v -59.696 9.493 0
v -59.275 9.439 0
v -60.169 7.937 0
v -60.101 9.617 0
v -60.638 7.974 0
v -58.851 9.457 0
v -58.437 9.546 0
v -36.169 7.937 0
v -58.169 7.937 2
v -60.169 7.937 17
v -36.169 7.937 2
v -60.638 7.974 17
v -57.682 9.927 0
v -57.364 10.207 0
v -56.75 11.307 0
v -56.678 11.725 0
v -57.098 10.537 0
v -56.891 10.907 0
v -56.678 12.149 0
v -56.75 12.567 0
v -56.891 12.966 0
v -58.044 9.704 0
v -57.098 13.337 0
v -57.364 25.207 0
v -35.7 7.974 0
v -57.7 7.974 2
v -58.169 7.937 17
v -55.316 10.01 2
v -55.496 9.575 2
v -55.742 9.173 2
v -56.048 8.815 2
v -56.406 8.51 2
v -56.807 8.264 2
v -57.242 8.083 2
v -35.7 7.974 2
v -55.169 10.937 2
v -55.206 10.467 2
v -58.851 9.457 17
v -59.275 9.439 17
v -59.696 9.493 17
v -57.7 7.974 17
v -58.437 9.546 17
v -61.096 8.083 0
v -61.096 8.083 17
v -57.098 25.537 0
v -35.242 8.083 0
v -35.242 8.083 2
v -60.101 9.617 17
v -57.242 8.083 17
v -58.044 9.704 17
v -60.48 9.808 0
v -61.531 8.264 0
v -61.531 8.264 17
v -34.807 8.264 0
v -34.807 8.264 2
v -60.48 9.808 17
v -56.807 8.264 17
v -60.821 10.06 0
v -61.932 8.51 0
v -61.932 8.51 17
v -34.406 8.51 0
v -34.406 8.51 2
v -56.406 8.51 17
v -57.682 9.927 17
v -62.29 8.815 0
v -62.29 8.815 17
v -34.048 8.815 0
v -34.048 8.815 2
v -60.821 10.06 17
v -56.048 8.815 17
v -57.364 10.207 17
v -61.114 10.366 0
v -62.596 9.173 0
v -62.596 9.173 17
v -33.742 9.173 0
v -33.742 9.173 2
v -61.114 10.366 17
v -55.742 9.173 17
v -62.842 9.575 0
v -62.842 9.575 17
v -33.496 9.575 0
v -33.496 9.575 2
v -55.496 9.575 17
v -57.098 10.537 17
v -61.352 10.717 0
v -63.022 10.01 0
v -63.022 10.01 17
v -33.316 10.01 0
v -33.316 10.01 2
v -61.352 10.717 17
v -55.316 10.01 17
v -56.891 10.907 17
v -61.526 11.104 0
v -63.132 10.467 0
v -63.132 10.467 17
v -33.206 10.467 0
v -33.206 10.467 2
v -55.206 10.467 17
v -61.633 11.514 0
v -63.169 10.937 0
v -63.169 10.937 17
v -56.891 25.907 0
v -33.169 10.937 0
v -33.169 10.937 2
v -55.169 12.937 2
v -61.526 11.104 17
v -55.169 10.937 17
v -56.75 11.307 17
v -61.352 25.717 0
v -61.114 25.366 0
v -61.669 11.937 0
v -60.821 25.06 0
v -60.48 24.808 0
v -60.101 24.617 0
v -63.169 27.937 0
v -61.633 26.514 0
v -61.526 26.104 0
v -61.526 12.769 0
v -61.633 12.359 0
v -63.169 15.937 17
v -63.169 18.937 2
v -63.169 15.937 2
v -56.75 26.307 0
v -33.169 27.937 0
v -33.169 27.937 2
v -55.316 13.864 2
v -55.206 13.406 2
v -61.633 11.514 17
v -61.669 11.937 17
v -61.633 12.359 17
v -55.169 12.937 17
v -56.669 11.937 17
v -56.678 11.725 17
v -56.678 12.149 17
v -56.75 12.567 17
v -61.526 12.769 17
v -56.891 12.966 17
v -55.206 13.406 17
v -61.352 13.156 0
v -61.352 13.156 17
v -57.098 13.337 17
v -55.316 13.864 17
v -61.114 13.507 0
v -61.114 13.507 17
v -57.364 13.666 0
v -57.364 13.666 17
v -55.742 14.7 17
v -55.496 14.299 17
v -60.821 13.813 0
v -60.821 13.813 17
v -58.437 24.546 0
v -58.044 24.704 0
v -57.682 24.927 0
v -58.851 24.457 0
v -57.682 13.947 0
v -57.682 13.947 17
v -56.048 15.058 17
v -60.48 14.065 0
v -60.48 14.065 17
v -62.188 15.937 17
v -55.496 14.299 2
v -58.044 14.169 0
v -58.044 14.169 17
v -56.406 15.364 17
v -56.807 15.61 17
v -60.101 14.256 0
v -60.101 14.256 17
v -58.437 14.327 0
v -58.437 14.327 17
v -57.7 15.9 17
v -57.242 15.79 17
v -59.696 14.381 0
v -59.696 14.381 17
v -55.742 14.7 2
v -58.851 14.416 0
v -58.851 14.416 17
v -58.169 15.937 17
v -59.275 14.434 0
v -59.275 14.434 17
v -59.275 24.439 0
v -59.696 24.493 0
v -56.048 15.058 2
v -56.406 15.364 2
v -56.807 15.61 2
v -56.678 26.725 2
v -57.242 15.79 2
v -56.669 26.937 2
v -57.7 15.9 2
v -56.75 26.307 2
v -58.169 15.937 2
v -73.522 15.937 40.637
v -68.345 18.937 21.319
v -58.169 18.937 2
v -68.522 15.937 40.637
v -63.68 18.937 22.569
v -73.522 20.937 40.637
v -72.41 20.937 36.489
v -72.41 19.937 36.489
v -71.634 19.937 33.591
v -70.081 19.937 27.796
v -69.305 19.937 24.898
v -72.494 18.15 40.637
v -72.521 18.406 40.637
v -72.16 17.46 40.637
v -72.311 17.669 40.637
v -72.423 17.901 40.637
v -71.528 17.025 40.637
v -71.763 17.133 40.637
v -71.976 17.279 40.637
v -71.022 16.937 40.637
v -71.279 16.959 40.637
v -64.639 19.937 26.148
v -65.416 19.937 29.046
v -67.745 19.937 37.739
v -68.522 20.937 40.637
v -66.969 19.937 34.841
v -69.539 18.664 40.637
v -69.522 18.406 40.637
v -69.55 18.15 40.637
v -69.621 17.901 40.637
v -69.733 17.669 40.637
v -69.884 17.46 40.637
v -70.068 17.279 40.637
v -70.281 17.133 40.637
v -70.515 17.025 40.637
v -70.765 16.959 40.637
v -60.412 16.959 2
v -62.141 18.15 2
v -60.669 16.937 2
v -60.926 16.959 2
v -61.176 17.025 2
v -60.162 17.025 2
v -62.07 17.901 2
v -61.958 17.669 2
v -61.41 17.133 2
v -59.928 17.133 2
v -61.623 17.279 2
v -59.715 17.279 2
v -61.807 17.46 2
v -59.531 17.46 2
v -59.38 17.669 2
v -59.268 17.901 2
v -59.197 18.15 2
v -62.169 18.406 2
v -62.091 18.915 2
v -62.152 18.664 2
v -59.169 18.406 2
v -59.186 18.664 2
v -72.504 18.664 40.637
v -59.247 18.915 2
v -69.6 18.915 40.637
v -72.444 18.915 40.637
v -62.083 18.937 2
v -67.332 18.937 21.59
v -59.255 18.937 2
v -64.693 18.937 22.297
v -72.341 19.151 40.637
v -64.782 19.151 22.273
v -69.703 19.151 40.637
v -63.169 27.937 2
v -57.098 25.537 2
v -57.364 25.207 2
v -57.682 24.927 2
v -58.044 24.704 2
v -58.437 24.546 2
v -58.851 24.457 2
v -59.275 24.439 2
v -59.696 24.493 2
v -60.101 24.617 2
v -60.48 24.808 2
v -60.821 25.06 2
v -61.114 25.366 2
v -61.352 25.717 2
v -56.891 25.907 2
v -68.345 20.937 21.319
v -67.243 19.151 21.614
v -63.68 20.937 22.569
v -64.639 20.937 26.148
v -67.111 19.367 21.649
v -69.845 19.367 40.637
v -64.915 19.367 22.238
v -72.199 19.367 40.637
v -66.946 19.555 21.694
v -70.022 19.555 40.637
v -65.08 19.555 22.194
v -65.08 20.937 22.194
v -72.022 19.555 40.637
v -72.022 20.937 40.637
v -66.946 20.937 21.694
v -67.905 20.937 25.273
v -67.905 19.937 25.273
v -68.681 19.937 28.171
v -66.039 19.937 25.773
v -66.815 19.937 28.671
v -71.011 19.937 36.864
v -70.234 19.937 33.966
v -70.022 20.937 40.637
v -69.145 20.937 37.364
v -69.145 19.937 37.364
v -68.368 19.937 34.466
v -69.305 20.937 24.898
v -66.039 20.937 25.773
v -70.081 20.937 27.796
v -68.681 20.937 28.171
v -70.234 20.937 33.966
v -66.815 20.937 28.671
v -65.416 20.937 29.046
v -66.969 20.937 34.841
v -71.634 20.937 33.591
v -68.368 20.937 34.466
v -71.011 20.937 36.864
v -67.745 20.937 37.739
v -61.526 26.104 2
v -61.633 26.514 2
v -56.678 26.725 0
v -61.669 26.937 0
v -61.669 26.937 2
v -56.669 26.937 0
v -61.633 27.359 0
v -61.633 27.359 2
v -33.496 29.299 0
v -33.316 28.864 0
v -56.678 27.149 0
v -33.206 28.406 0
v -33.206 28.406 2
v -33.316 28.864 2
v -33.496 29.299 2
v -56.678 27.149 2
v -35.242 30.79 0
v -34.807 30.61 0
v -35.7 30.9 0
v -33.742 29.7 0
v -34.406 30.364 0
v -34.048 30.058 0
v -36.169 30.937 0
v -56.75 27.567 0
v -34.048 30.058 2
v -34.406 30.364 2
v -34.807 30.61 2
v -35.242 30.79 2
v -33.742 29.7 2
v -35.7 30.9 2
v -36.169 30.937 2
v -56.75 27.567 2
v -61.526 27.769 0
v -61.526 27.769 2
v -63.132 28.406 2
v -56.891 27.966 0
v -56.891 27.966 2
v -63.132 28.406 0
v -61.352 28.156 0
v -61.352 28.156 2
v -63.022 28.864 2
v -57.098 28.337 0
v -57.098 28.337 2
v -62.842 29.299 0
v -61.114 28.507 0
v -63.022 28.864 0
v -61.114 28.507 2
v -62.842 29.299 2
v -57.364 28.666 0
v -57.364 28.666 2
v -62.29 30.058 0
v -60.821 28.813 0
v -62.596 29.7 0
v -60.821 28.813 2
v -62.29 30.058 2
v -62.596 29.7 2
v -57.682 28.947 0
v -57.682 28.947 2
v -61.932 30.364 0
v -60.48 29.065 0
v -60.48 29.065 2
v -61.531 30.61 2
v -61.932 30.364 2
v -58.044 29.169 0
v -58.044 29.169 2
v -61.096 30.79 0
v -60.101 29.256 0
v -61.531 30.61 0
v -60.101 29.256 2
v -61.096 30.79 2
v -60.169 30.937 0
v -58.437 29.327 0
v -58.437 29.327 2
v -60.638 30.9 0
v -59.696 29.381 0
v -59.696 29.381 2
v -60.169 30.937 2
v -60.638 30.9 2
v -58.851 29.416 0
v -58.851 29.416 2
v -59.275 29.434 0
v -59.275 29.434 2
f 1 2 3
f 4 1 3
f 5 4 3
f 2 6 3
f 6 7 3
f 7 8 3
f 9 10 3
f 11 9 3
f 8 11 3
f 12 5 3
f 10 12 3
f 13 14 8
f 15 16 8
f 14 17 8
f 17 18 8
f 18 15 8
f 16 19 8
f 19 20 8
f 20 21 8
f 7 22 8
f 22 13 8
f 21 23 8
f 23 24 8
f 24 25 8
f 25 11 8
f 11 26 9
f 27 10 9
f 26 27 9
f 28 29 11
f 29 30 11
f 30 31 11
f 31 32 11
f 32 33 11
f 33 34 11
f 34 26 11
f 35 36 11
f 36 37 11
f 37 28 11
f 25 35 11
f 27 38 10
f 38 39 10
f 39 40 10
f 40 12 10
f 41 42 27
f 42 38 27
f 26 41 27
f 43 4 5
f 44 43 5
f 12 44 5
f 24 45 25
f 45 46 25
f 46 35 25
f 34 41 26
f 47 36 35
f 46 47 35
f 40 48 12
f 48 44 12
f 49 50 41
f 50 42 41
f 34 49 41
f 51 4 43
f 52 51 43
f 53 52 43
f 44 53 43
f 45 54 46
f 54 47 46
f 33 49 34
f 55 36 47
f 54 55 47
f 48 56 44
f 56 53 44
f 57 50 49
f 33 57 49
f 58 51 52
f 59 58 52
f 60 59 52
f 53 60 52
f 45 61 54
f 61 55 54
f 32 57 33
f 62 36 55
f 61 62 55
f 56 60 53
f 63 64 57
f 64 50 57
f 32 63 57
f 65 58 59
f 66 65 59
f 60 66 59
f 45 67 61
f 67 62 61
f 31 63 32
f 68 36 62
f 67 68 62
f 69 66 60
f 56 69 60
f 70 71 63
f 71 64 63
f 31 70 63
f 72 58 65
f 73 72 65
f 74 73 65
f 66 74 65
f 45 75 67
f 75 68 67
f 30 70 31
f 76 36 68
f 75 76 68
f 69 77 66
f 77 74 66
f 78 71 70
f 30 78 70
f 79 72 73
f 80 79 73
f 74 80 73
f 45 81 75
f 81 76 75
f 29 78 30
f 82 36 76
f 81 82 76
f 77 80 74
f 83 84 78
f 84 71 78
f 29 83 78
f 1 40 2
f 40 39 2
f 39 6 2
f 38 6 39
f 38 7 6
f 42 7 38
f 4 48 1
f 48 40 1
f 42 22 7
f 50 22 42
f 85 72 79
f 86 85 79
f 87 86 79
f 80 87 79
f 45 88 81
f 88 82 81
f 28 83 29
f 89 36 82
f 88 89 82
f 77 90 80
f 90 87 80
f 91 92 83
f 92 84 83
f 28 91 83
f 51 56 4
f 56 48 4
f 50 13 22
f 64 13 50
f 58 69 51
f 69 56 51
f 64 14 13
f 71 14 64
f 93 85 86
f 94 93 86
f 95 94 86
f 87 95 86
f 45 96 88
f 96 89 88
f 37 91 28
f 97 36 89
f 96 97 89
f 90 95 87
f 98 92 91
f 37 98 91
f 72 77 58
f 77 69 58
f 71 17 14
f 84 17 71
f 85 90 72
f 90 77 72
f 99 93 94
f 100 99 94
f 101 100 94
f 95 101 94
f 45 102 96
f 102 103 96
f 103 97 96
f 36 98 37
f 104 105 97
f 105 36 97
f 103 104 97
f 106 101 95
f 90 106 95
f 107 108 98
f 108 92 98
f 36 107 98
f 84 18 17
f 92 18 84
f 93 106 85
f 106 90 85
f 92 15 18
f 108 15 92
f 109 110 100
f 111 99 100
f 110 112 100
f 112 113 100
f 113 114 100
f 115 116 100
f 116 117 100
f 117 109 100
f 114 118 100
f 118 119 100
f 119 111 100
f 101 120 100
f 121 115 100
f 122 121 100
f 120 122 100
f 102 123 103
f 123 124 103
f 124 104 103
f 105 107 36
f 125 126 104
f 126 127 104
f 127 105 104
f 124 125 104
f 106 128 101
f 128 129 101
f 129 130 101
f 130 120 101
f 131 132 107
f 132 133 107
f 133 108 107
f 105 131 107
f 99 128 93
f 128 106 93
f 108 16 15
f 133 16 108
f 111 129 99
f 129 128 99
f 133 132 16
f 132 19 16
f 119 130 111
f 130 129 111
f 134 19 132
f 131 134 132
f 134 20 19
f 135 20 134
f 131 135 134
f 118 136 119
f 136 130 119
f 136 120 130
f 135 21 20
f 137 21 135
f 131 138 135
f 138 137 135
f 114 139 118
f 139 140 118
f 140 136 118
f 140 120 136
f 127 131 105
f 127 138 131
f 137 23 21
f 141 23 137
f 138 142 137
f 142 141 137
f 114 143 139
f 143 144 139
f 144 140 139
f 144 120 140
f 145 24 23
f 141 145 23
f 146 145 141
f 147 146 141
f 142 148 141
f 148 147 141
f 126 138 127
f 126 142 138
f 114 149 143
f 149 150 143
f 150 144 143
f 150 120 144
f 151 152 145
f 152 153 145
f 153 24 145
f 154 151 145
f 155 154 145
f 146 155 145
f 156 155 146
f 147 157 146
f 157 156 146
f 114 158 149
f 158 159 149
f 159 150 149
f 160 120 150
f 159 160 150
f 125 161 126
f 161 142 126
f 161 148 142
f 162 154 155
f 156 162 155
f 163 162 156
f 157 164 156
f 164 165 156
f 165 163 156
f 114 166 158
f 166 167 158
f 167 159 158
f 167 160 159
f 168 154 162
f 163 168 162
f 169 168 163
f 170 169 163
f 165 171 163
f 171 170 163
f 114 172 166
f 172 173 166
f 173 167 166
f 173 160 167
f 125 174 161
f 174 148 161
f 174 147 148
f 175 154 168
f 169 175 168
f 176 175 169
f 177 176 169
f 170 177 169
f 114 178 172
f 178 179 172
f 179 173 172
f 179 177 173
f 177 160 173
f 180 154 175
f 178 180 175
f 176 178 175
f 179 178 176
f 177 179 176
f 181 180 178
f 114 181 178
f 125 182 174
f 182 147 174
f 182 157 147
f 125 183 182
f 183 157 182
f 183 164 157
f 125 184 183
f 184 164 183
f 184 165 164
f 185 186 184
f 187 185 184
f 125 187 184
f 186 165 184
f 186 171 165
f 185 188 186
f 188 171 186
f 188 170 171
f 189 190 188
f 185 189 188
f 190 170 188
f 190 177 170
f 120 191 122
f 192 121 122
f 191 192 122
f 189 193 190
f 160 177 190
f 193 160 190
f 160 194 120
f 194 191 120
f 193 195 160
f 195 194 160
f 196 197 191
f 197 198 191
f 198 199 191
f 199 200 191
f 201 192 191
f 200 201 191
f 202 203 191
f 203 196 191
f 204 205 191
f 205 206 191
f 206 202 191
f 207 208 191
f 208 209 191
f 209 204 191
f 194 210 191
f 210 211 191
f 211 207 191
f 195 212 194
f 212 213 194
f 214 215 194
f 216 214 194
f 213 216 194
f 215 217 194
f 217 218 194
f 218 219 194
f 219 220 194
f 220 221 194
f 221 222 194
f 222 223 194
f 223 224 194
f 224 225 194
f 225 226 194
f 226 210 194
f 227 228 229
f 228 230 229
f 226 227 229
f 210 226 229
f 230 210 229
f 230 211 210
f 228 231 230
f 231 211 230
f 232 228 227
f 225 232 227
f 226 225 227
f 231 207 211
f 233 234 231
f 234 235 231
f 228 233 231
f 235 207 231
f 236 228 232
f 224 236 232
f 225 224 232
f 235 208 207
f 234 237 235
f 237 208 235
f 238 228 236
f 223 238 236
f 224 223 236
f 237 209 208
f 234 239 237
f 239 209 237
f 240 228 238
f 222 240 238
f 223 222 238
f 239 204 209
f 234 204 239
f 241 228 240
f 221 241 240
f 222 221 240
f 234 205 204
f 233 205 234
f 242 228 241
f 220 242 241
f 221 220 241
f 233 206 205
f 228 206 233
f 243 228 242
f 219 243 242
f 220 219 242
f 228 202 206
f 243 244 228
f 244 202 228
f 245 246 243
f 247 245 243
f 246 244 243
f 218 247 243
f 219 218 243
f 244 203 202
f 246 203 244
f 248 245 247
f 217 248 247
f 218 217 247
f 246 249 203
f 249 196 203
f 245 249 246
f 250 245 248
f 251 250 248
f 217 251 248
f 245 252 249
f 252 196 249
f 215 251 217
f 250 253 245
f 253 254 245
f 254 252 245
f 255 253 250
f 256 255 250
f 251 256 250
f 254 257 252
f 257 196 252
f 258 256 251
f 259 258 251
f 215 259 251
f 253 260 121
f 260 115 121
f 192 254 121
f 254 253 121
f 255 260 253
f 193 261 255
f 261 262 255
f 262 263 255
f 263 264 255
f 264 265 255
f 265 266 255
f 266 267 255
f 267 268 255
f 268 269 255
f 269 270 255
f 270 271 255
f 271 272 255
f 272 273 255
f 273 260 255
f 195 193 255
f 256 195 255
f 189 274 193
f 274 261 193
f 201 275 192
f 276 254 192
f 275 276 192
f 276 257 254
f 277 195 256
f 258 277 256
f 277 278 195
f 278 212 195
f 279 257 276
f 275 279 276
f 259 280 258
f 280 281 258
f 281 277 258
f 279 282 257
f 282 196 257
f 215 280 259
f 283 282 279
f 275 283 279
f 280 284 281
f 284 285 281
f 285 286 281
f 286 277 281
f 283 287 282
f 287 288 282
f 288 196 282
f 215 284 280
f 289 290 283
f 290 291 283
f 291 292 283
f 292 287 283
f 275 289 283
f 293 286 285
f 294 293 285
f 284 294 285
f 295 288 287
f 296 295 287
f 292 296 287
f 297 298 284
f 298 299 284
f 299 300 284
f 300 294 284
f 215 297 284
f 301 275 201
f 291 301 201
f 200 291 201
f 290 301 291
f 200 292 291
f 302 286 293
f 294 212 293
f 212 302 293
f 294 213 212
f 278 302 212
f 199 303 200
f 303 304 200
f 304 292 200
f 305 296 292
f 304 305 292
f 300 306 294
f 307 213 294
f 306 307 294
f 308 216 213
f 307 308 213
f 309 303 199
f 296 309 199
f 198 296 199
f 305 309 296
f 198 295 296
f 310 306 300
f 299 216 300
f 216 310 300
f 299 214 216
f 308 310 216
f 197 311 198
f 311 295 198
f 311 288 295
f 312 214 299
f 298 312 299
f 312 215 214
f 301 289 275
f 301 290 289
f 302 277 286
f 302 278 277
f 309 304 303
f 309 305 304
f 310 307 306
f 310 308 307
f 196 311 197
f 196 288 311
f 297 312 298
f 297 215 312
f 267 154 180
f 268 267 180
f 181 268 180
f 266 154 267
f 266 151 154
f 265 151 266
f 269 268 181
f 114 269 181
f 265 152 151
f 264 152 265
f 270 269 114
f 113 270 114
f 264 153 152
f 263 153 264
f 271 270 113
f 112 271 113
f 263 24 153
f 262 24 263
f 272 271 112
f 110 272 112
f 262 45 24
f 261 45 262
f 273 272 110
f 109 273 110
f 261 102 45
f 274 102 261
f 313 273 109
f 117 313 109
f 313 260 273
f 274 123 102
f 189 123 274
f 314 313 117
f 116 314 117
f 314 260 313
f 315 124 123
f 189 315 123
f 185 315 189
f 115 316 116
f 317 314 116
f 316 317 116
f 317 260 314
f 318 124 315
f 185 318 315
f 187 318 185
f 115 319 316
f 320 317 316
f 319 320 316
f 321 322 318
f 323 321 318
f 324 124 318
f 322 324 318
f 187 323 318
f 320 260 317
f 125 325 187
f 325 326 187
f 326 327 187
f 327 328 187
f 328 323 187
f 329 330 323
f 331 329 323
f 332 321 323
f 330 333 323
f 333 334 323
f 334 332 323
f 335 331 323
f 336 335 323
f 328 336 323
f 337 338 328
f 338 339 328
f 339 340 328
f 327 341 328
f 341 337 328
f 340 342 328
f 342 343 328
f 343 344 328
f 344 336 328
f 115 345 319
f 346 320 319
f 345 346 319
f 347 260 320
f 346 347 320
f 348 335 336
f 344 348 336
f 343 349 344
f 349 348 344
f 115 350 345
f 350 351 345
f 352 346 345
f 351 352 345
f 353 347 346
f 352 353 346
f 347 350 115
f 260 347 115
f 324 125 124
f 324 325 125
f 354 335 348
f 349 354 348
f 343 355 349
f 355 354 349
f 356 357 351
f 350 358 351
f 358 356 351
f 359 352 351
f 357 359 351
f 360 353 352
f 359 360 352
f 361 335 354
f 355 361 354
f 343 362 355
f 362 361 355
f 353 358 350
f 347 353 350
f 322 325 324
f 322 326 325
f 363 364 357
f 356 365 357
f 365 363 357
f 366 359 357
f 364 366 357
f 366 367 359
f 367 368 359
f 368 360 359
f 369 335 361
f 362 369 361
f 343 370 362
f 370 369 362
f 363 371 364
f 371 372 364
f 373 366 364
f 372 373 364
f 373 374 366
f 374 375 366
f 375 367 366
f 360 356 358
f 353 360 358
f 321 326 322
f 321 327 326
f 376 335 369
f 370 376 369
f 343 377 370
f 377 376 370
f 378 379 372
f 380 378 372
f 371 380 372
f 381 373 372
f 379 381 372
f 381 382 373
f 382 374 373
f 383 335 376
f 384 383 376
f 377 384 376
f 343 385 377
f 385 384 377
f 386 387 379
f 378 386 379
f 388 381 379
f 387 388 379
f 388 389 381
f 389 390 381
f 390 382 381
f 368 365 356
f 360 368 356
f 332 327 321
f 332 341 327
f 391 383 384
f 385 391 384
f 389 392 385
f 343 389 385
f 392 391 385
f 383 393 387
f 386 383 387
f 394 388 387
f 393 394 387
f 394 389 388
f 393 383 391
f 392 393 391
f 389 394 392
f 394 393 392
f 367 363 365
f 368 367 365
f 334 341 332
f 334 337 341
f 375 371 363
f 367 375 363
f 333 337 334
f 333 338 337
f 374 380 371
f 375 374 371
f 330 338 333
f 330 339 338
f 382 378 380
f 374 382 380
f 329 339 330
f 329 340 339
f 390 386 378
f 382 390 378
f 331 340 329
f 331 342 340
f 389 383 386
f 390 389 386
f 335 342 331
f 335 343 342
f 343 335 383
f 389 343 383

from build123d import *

# Parameters (mm, degrees)
CROQUIS3_W              = 30
CROQUIS3_H              = 23
CROQUIS3_R              = 2.5
SALIENTE_EXTRUIR2_DEPTH = 2
CROQUIS5_W              = 8
CROQUIS5_H              = 8
CROQUIS5_R              = 2.5
SALIENTE_EXTRUIR3_DEPTH = 15
SALIENTE_EXTRUIR4_DEPTH = 40
REDONDEO1_R             = 3
CORTAR_EXTRUIR2_DEPTH   = 2
CORTAR_EXTRUIR3_DEPTH   = 1


with BuildPart() as part:
    # Croquis3 → Saliente-Extruir2 (new body)
    with BuildSketch(Plane.XY):
        with Locations((-48.169014085, 19.436619718)):
            Rectangle(CROQUIS3_W, CROQUIS3_H)
        with Locations((-59.169014085, 26.936619718)):
            Circle(CROQUIS3_R, mode=Mode.SUBTRACT)
        with Locations(Location((-59.169014085, 11.936619718, 0), (0, 0, 180))):
            Circle(CROQUIS3_R, mode=Mode.SUBTRACT)
    extrude(amount=SALIENTE_EXTRUIR2_DEPTH)

    # Croquis5 → Saliente-Extruir3 (add)
    with BuildSketch(Plane.XY.offset(2)):
        with Locations((-59.169014085, 11.936619718)):
            Rectangle(CROQUIS5_W, CROQUIS5_H)
        with Locations(Location((-59.169014085, 11.936619718, 0), (0, 0, 180))):
            Circle(CROQUIS5_R, mode=Mode.SUBTRACT)
    extrude(amount=SALIENTE_EXTRUIR3_DEPTH)

    # Croquis6 → Saliente-Extruir4 (add, along a direction that is not the sketch's normal)
    with BuildSketch(Plane.XY.offset(2)):
        with BuildLine():
            Line((-63.169014085, 15.936619718), (-58.169014085, 15.936619718))
            Line((-58.169014085, 15.936619718), (-58.169014085, 20.936619718))
            Line((-58.169014085, 20.936619718), (-59.669014085, 20.936619718))
            Line((-59.669014085, 20.936619718), (-59.669014085, 19.554653707))
            ThreePointArc((-59.669014085, 19.554653707), (-60.669014085, 16.936619718), (-61.669014085, 19.554653707))
            Line((-61.669014085, 19.554653707), (-61.669014085, 20.936619718))
            Line((-61.669014085, 20.936619718), (-63.169014085, 20.936619718))
            Line((-63.169014085, 20.936619718), (-63.169014085, 15.936619718))
        make_face()
    extrude(amount=SALIENTE_EXTRUIR4_DEPTH, dir=(-0.2588190451025139, 0, 0.9659258262890701))

    # Redondeo1
    redondeo1_edges = [part.edges().sort_by_distance(p)[0] for p in [
        (-33.169014085, 7.936619718, 1),
        (-33.169014085, 30.936619718, 1),
        (-63.169014085, 7.936619718, 8.5),
        (-63.169014085, 30.936619718, 1),
        (-55.169014085, 7.936619718, 9.5),
        (-55.169014085, 15.936619718, 9.5),
    ]]
    fillet(redondeo1_edges, radius=REDONDEO1_R)

    # Croquis10 → Cortar-Extruir2 (cut)
    with BuildSketch(Plane(origin=(0, 20.936619718, 0), x_dir=(1, 0, 0), z_dir=(0, 1, 0))):
        Polygon((-58.169014085, -2), (-63.169014085, -2), (-68.345394987, -21.318516526), (-63.680331477, -22.568516526), align=None)
    extrude(amount=-CORTAR_EXTRUIR2_DEPTH, mode=Mode.SUBTRACT)

    # Croquis11 → Cortar-Extruir3 (cut)
    with BuildSketch(Plane(origin=(0, 20.936619718, 0), x_dir=(1, 0, 0), z_dir=(0, 1, 0))):
        Polygon((-64.639490212, -26.148145657), (-69.304553722, -24.898145657), (-70.081010857, -27.795923136), (-65.415947347, -29.045923136), align=None)
        Polygon((-66.968861618, -34.841478094), (-71.633925127, -33.591478094), (-72.410382263, -36.489255573), (-67.745318753, -37.739255573), align=None)
    extrude(amount=-CORTAR_EXTRUIR3_DEPTH, mode=Mode.SUBTRACT)


solid = part.part
